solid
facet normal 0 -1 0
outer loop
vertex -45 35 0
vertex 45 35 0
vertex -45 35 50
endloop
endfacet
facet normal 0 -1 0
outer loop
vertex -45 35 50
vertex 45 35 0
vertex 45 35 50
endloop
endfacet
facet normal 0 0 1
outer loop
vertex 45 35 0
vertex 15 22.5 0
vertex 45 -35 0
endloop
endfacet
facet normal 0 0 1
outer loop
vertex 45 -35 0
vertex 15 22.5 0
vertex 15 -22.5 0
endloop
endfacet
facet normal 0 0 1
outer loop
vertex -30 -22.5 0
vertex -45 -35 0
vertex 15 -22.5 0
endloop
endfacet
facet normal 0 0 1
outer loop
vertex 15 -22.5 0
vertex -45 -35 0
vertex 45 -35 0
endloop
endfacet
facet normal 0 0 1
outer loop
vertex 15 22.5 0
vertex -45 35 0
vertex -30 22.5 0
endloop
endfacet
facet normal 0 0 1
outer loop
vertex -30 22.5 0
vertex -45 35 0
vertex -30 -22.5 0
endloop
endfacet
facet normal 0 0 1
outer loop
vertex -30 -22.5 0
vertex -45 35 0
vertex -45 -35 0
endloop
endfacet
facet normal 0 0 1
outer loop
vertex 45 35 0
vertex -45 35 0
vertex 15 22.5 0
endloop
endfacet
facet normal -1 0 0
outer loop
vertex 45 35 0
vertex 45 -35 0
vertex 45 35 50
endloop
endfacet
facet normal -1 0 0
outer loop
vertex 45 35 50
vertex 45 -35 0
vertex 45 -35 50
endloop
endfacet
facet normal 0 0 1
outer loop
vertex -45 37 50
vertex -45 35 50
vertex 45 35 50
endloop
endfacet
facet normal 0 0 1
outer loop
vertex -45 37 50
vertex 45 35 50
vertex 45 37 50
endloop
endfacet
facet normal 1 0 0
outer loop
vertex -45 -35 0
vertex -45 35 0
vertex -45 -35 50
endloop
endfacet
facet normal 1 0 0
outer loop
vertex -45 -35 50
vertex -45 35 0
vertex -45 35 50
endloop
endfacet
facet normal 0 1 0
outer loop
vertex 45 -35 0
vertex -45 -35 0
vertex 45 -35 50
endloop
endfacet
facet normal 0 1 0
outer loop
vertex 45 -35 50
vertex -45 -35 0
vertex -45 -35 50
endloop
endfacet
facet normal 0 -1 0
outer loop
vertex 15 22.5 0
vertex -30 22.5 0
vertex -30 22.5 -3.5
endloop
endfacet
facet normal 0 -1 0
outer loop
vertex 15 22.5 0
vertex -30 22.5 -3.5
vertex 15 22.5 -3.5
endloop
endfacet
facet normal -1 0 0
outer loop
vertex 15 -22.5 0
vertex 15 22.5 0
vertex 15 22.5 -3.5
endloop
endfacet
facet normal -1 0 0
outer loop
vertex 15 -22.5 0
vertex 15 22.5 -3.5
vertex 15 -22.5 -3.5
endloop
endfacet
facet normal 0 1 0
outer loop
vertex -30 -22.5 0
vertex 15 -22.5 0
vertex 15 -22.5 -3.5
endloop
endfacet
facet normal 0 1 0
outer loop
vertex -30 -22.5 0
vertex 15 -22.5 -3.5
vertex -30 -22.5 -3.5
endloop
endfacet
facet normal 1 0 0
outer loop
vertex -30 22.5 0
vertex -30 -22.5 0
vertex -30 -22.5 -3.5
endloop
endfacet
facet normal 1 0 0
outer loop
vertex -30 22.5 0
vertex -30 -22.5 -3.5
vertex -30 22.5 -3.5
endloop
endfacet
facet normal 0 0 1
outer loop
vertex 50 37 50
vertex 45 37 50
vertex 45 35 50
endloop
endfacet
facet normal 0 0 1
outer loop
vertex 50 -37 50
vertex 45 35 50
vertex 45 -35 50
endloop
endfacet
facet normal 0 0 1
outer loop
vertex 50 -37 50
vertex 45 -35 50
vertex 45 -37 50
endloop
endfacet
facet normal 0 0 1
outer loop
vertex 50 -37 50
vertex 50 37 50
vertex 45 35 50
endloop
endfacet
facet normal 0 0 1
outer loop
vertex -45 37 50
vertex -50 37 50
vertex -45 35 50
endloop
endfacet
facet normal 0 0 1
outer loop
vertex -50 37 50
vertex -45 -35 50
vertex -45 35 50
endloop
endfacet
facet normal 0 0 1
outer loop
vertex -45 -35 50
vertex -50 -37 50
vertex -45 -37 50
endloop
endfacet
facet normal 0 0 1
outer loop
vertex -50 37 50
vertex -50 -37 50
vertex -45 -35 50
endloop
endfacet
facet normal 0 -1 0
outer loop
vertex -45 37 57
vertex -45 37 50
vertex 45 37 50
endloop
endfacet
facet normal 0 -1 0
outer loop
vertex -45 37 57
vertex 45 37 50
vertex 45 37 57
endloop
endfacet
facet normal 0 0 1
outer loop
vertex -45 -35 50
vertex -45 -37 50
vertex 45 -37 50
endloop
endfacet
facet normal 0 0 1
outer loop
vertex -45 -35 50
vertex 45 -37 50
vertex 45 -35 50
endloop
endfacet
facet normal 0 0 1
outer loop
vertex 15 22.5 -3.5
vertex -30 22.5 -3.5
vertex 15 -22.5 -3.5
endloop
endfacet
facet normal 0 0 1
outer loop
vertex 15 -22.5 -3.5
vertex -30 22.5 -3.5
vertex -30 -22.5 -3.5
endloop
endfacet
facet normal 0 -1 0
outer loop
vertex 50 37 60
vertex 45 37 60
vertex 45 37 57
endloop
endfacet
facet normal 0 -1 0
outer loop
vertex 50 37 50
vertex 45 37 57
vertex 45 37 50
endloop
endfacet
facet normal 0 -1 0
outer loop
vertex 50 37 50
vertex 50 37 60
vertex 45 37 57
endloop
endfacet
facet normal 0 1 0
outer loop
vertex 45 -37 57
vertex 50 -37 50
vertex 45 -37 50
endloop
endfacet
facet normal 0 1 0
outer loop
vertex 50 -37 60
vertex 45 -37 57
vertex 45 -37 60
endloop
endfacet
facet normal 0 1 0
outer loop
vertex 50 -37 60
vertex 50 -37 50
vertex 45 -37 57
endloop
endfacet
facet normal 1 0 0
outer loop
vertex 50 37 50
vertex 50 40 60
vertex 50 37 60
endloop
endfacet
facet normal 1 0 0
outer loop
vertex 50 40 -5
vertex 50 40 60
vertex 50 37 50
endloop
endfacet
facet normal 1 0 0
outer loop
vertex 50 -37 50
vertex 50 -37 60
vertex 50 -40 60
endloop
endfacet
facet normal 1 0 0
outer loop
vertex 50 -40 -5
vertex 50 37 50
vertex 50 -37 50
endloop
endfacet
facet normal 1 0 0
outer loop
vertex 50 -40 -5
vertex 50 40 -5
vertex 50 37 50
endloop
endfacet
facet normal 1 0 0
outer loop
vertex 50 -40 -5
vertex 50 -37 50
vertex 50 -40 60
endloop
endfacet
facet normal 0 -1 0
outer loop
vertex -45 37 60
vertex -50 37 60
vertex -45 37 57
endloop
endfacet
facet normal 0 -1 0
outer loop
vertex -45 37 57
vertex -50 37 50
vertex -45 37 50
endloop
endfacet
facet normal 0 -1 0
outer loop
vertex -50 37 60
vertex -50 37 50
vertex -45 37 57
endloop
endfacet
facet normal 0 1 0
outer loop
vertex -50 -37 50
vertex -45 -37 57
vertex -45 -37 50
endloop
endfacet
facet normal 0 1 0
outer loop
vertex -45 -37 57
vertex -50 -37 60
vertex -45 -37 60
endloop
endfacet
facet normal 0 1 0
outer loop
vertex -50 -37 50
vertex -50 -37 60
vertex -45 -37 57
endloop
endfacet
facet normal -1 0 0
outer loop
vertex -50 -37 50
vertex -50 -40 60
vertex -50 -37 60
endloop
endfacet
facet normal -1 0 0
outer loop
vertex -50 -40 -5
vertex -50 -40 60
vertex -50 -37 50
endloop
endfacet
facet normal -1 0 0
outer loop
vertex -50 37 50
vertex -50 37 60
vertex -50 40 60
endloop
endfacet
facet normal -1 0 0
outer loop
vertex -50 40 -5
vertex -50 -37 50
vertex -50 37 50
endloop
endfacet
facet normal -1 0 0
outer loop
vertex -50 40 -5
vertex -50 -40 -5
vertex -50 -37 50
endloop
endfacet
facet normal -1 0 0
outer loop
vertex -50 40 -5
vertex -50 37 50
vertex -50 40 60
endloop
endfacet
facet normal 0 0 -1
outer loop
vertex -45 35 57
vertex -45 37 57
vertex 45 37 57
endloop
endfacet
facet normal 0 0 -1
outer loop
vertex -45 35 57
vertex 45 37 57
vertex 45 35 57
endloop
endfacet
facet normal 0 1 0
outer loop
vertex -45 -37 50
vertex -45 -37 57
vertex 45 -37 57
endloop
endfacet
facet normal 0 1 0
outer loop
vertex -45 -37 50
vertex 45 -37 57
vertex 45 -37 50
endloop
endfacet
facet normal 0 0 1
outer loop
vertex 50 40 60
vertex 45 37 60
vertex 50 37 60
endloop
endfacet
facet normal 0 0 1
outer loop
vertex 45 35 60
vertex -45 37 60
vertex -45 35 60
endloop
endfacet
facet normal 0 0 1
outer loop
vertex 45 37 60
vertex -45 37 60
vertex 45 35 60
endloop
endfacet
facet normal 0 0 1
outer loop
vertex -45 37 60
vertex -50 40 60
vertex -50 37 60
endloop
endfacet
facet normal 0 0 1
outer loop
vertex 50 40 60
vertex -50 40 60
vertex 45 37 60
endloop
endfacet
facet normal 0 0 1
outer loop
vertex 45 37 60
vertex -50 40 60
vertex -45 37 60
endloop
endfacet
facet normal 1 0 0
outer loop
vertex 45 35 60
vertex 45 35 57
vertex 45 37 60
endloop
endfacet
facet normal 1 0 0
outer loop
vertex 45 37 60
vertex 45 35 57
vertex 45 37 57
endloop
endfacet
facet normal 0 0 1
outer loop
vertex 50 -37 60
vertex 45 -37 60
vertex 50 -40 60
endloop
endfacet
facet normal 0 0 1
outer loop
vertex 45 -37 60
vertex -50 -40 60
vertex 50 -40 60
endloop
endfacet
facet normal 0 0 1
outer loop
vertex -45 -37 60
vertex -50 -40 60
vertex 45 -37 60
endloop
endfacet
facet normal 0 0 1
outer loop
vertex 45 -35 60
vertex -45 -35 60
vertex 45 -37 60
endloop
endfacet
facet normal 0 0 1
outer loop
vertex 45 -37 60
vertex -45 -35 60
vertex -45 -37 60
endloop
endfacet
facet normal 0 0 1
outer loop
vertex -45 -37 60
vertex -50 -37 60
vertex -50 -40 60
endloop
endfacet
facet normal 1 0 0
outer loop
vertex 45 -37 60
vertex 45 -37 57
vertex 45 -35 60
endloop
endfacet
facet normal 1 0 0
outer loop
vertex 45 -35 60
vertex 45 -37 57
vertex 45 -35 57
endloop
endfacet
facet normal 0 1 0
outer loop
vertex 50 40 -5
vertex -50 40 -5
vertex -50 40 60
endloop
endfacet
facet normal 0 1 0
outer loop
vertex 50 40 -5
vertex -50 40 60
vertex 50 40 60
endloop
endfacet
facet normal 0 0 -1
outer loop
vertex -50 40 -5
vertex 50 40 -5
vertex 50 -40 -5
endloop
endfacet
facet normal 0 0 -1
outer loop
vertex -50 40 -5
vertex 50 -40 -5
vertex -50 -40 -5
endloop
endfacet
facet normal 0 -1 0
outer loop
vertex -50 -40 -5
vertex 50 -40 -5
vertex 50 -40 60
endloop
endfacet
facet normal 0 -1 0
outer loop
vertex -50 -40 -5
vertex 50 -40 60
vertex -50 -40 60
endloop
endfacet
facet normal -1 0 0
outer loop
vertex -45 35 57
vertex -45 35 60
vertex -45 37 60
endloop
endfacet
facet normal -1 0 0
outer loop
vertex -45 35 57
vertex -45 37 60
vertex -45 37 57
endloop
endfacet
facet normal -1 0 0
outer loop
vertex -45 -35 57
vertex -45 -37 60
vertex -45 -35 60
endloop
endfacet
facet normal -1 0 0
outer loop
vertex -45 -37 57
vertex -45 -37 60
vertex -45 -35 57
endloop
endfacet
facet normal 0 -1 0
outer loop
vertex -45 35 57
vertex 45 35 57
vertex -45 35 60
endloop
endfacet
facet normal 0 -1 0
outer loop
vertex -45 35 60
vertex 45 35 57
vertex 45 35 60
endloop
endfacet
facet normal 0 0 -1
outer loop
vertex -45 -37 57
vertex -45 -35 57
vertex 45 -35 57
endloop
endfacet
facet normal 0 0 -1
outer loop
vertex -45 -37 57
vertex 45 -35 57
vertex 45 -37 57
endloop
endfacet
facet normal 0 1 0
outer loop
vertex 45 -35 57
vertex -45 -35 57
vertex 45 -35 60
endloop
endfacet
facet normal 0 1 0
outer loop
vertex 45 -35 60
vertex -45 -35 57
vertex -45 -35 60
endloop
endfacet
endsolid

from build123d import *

# Parameters (mm, degrees)
SKETCH_W        = 90
SKETCH_H        = 70
PAD_DEPTH       = 60
THICKNESS_T     = 5
SKETCH001_W     = 45
SKETCH001_H     = 45
POCKET_DEPTH    = 3.5
POCKET001_DEPTH = 3.5
SKETCH002_W     = 74
SKETCH002_H     = 10
POCKET002_DEPTH = 5
SKETCH003_W     = 74
SKETCH003_H     = 10
POCKET003_DEPTH = 5
SKETCH004_W     = 74
SKETCH004_H     = 7
POCKET004_DEPTH = 90


with BuildPart() as part:
    # Sketch → Pad (new body)
    with BuildSketch(Plane.XY):
        Rectangle(SKETCH_W, SKETCH_H)
    extrude(amount=PAD_DEPTH)

    # Thickness
    thickness_openings = [part.faces().sort_by_distance(p)[0] for p in [
        (0, 0, 60),
    ]]
    offset(amount=THICKNESS_T, openings=thickness_openings, kind=Kind.INTERSECTION)

    # Sketch001 (on Face5 of Thickness) → Pocket (cut)
    with BuildSketch(Plane.XY):
        with Locations((-7.5, 0)):
            Rectangle(SKETCH001_W, SKETCH001_H)
    extrude(amount=-POCKET_DEPTH, mode=Mode.SUBTRACT)

    # Sketch001 (on Face5 of Thickness) → Pocket001 (cut)
    with BuildSketch(Plane.XY):
        with Locations((-7.5, 0)):
            Rectangle(SKETCH001_W, SKETCH001_H)
    extrude(amount=-POCKET001_DEPTH, mode=Mode.SUBTRACT)

    # Sketch002 (on Face12 of Pocket001) → Pocket002 (cut)
    with BuildSketch(Plane(origin=(-50, 0, 0), x_dir=(0, -1, 0), z_dir=(-1, 0, 0))):
        with Locations((0, 55)):
            Rectangle(SKETCH002_W, SKETCH002_H)
    extrude(amount=-POCKET002_DEPTH, mode=Mode.SUBTRACT)

    # Sketch003 (on Face18 of Pocket002) → Pocket003 (cut)
    with BuildSketch(Plane.YZ.offset(50)):
        with Locations((0, 55)):
            Rectangle(SKETCH003_W, SKETCH003_H)
    extrude(amount=-POCKET003_DEPTH, mode=Mode.SUBTRACT)

    # Sketch004 (on Face3 of Pocket003) → Pocket004 (cut)
    with BuildSketch(Plane(origin=(-45, 0, 0), x_dir=(0, -1, 0), z_dir=(-1, 0, 0))):
        with Locations((0, 53.5)):
            Rectangle(SKETCH004_W, SKETCH004_H)
    extrude(amount=-POCKET004_DEPTH, mode=Mode.SUBTRACT)


solid = part.part
